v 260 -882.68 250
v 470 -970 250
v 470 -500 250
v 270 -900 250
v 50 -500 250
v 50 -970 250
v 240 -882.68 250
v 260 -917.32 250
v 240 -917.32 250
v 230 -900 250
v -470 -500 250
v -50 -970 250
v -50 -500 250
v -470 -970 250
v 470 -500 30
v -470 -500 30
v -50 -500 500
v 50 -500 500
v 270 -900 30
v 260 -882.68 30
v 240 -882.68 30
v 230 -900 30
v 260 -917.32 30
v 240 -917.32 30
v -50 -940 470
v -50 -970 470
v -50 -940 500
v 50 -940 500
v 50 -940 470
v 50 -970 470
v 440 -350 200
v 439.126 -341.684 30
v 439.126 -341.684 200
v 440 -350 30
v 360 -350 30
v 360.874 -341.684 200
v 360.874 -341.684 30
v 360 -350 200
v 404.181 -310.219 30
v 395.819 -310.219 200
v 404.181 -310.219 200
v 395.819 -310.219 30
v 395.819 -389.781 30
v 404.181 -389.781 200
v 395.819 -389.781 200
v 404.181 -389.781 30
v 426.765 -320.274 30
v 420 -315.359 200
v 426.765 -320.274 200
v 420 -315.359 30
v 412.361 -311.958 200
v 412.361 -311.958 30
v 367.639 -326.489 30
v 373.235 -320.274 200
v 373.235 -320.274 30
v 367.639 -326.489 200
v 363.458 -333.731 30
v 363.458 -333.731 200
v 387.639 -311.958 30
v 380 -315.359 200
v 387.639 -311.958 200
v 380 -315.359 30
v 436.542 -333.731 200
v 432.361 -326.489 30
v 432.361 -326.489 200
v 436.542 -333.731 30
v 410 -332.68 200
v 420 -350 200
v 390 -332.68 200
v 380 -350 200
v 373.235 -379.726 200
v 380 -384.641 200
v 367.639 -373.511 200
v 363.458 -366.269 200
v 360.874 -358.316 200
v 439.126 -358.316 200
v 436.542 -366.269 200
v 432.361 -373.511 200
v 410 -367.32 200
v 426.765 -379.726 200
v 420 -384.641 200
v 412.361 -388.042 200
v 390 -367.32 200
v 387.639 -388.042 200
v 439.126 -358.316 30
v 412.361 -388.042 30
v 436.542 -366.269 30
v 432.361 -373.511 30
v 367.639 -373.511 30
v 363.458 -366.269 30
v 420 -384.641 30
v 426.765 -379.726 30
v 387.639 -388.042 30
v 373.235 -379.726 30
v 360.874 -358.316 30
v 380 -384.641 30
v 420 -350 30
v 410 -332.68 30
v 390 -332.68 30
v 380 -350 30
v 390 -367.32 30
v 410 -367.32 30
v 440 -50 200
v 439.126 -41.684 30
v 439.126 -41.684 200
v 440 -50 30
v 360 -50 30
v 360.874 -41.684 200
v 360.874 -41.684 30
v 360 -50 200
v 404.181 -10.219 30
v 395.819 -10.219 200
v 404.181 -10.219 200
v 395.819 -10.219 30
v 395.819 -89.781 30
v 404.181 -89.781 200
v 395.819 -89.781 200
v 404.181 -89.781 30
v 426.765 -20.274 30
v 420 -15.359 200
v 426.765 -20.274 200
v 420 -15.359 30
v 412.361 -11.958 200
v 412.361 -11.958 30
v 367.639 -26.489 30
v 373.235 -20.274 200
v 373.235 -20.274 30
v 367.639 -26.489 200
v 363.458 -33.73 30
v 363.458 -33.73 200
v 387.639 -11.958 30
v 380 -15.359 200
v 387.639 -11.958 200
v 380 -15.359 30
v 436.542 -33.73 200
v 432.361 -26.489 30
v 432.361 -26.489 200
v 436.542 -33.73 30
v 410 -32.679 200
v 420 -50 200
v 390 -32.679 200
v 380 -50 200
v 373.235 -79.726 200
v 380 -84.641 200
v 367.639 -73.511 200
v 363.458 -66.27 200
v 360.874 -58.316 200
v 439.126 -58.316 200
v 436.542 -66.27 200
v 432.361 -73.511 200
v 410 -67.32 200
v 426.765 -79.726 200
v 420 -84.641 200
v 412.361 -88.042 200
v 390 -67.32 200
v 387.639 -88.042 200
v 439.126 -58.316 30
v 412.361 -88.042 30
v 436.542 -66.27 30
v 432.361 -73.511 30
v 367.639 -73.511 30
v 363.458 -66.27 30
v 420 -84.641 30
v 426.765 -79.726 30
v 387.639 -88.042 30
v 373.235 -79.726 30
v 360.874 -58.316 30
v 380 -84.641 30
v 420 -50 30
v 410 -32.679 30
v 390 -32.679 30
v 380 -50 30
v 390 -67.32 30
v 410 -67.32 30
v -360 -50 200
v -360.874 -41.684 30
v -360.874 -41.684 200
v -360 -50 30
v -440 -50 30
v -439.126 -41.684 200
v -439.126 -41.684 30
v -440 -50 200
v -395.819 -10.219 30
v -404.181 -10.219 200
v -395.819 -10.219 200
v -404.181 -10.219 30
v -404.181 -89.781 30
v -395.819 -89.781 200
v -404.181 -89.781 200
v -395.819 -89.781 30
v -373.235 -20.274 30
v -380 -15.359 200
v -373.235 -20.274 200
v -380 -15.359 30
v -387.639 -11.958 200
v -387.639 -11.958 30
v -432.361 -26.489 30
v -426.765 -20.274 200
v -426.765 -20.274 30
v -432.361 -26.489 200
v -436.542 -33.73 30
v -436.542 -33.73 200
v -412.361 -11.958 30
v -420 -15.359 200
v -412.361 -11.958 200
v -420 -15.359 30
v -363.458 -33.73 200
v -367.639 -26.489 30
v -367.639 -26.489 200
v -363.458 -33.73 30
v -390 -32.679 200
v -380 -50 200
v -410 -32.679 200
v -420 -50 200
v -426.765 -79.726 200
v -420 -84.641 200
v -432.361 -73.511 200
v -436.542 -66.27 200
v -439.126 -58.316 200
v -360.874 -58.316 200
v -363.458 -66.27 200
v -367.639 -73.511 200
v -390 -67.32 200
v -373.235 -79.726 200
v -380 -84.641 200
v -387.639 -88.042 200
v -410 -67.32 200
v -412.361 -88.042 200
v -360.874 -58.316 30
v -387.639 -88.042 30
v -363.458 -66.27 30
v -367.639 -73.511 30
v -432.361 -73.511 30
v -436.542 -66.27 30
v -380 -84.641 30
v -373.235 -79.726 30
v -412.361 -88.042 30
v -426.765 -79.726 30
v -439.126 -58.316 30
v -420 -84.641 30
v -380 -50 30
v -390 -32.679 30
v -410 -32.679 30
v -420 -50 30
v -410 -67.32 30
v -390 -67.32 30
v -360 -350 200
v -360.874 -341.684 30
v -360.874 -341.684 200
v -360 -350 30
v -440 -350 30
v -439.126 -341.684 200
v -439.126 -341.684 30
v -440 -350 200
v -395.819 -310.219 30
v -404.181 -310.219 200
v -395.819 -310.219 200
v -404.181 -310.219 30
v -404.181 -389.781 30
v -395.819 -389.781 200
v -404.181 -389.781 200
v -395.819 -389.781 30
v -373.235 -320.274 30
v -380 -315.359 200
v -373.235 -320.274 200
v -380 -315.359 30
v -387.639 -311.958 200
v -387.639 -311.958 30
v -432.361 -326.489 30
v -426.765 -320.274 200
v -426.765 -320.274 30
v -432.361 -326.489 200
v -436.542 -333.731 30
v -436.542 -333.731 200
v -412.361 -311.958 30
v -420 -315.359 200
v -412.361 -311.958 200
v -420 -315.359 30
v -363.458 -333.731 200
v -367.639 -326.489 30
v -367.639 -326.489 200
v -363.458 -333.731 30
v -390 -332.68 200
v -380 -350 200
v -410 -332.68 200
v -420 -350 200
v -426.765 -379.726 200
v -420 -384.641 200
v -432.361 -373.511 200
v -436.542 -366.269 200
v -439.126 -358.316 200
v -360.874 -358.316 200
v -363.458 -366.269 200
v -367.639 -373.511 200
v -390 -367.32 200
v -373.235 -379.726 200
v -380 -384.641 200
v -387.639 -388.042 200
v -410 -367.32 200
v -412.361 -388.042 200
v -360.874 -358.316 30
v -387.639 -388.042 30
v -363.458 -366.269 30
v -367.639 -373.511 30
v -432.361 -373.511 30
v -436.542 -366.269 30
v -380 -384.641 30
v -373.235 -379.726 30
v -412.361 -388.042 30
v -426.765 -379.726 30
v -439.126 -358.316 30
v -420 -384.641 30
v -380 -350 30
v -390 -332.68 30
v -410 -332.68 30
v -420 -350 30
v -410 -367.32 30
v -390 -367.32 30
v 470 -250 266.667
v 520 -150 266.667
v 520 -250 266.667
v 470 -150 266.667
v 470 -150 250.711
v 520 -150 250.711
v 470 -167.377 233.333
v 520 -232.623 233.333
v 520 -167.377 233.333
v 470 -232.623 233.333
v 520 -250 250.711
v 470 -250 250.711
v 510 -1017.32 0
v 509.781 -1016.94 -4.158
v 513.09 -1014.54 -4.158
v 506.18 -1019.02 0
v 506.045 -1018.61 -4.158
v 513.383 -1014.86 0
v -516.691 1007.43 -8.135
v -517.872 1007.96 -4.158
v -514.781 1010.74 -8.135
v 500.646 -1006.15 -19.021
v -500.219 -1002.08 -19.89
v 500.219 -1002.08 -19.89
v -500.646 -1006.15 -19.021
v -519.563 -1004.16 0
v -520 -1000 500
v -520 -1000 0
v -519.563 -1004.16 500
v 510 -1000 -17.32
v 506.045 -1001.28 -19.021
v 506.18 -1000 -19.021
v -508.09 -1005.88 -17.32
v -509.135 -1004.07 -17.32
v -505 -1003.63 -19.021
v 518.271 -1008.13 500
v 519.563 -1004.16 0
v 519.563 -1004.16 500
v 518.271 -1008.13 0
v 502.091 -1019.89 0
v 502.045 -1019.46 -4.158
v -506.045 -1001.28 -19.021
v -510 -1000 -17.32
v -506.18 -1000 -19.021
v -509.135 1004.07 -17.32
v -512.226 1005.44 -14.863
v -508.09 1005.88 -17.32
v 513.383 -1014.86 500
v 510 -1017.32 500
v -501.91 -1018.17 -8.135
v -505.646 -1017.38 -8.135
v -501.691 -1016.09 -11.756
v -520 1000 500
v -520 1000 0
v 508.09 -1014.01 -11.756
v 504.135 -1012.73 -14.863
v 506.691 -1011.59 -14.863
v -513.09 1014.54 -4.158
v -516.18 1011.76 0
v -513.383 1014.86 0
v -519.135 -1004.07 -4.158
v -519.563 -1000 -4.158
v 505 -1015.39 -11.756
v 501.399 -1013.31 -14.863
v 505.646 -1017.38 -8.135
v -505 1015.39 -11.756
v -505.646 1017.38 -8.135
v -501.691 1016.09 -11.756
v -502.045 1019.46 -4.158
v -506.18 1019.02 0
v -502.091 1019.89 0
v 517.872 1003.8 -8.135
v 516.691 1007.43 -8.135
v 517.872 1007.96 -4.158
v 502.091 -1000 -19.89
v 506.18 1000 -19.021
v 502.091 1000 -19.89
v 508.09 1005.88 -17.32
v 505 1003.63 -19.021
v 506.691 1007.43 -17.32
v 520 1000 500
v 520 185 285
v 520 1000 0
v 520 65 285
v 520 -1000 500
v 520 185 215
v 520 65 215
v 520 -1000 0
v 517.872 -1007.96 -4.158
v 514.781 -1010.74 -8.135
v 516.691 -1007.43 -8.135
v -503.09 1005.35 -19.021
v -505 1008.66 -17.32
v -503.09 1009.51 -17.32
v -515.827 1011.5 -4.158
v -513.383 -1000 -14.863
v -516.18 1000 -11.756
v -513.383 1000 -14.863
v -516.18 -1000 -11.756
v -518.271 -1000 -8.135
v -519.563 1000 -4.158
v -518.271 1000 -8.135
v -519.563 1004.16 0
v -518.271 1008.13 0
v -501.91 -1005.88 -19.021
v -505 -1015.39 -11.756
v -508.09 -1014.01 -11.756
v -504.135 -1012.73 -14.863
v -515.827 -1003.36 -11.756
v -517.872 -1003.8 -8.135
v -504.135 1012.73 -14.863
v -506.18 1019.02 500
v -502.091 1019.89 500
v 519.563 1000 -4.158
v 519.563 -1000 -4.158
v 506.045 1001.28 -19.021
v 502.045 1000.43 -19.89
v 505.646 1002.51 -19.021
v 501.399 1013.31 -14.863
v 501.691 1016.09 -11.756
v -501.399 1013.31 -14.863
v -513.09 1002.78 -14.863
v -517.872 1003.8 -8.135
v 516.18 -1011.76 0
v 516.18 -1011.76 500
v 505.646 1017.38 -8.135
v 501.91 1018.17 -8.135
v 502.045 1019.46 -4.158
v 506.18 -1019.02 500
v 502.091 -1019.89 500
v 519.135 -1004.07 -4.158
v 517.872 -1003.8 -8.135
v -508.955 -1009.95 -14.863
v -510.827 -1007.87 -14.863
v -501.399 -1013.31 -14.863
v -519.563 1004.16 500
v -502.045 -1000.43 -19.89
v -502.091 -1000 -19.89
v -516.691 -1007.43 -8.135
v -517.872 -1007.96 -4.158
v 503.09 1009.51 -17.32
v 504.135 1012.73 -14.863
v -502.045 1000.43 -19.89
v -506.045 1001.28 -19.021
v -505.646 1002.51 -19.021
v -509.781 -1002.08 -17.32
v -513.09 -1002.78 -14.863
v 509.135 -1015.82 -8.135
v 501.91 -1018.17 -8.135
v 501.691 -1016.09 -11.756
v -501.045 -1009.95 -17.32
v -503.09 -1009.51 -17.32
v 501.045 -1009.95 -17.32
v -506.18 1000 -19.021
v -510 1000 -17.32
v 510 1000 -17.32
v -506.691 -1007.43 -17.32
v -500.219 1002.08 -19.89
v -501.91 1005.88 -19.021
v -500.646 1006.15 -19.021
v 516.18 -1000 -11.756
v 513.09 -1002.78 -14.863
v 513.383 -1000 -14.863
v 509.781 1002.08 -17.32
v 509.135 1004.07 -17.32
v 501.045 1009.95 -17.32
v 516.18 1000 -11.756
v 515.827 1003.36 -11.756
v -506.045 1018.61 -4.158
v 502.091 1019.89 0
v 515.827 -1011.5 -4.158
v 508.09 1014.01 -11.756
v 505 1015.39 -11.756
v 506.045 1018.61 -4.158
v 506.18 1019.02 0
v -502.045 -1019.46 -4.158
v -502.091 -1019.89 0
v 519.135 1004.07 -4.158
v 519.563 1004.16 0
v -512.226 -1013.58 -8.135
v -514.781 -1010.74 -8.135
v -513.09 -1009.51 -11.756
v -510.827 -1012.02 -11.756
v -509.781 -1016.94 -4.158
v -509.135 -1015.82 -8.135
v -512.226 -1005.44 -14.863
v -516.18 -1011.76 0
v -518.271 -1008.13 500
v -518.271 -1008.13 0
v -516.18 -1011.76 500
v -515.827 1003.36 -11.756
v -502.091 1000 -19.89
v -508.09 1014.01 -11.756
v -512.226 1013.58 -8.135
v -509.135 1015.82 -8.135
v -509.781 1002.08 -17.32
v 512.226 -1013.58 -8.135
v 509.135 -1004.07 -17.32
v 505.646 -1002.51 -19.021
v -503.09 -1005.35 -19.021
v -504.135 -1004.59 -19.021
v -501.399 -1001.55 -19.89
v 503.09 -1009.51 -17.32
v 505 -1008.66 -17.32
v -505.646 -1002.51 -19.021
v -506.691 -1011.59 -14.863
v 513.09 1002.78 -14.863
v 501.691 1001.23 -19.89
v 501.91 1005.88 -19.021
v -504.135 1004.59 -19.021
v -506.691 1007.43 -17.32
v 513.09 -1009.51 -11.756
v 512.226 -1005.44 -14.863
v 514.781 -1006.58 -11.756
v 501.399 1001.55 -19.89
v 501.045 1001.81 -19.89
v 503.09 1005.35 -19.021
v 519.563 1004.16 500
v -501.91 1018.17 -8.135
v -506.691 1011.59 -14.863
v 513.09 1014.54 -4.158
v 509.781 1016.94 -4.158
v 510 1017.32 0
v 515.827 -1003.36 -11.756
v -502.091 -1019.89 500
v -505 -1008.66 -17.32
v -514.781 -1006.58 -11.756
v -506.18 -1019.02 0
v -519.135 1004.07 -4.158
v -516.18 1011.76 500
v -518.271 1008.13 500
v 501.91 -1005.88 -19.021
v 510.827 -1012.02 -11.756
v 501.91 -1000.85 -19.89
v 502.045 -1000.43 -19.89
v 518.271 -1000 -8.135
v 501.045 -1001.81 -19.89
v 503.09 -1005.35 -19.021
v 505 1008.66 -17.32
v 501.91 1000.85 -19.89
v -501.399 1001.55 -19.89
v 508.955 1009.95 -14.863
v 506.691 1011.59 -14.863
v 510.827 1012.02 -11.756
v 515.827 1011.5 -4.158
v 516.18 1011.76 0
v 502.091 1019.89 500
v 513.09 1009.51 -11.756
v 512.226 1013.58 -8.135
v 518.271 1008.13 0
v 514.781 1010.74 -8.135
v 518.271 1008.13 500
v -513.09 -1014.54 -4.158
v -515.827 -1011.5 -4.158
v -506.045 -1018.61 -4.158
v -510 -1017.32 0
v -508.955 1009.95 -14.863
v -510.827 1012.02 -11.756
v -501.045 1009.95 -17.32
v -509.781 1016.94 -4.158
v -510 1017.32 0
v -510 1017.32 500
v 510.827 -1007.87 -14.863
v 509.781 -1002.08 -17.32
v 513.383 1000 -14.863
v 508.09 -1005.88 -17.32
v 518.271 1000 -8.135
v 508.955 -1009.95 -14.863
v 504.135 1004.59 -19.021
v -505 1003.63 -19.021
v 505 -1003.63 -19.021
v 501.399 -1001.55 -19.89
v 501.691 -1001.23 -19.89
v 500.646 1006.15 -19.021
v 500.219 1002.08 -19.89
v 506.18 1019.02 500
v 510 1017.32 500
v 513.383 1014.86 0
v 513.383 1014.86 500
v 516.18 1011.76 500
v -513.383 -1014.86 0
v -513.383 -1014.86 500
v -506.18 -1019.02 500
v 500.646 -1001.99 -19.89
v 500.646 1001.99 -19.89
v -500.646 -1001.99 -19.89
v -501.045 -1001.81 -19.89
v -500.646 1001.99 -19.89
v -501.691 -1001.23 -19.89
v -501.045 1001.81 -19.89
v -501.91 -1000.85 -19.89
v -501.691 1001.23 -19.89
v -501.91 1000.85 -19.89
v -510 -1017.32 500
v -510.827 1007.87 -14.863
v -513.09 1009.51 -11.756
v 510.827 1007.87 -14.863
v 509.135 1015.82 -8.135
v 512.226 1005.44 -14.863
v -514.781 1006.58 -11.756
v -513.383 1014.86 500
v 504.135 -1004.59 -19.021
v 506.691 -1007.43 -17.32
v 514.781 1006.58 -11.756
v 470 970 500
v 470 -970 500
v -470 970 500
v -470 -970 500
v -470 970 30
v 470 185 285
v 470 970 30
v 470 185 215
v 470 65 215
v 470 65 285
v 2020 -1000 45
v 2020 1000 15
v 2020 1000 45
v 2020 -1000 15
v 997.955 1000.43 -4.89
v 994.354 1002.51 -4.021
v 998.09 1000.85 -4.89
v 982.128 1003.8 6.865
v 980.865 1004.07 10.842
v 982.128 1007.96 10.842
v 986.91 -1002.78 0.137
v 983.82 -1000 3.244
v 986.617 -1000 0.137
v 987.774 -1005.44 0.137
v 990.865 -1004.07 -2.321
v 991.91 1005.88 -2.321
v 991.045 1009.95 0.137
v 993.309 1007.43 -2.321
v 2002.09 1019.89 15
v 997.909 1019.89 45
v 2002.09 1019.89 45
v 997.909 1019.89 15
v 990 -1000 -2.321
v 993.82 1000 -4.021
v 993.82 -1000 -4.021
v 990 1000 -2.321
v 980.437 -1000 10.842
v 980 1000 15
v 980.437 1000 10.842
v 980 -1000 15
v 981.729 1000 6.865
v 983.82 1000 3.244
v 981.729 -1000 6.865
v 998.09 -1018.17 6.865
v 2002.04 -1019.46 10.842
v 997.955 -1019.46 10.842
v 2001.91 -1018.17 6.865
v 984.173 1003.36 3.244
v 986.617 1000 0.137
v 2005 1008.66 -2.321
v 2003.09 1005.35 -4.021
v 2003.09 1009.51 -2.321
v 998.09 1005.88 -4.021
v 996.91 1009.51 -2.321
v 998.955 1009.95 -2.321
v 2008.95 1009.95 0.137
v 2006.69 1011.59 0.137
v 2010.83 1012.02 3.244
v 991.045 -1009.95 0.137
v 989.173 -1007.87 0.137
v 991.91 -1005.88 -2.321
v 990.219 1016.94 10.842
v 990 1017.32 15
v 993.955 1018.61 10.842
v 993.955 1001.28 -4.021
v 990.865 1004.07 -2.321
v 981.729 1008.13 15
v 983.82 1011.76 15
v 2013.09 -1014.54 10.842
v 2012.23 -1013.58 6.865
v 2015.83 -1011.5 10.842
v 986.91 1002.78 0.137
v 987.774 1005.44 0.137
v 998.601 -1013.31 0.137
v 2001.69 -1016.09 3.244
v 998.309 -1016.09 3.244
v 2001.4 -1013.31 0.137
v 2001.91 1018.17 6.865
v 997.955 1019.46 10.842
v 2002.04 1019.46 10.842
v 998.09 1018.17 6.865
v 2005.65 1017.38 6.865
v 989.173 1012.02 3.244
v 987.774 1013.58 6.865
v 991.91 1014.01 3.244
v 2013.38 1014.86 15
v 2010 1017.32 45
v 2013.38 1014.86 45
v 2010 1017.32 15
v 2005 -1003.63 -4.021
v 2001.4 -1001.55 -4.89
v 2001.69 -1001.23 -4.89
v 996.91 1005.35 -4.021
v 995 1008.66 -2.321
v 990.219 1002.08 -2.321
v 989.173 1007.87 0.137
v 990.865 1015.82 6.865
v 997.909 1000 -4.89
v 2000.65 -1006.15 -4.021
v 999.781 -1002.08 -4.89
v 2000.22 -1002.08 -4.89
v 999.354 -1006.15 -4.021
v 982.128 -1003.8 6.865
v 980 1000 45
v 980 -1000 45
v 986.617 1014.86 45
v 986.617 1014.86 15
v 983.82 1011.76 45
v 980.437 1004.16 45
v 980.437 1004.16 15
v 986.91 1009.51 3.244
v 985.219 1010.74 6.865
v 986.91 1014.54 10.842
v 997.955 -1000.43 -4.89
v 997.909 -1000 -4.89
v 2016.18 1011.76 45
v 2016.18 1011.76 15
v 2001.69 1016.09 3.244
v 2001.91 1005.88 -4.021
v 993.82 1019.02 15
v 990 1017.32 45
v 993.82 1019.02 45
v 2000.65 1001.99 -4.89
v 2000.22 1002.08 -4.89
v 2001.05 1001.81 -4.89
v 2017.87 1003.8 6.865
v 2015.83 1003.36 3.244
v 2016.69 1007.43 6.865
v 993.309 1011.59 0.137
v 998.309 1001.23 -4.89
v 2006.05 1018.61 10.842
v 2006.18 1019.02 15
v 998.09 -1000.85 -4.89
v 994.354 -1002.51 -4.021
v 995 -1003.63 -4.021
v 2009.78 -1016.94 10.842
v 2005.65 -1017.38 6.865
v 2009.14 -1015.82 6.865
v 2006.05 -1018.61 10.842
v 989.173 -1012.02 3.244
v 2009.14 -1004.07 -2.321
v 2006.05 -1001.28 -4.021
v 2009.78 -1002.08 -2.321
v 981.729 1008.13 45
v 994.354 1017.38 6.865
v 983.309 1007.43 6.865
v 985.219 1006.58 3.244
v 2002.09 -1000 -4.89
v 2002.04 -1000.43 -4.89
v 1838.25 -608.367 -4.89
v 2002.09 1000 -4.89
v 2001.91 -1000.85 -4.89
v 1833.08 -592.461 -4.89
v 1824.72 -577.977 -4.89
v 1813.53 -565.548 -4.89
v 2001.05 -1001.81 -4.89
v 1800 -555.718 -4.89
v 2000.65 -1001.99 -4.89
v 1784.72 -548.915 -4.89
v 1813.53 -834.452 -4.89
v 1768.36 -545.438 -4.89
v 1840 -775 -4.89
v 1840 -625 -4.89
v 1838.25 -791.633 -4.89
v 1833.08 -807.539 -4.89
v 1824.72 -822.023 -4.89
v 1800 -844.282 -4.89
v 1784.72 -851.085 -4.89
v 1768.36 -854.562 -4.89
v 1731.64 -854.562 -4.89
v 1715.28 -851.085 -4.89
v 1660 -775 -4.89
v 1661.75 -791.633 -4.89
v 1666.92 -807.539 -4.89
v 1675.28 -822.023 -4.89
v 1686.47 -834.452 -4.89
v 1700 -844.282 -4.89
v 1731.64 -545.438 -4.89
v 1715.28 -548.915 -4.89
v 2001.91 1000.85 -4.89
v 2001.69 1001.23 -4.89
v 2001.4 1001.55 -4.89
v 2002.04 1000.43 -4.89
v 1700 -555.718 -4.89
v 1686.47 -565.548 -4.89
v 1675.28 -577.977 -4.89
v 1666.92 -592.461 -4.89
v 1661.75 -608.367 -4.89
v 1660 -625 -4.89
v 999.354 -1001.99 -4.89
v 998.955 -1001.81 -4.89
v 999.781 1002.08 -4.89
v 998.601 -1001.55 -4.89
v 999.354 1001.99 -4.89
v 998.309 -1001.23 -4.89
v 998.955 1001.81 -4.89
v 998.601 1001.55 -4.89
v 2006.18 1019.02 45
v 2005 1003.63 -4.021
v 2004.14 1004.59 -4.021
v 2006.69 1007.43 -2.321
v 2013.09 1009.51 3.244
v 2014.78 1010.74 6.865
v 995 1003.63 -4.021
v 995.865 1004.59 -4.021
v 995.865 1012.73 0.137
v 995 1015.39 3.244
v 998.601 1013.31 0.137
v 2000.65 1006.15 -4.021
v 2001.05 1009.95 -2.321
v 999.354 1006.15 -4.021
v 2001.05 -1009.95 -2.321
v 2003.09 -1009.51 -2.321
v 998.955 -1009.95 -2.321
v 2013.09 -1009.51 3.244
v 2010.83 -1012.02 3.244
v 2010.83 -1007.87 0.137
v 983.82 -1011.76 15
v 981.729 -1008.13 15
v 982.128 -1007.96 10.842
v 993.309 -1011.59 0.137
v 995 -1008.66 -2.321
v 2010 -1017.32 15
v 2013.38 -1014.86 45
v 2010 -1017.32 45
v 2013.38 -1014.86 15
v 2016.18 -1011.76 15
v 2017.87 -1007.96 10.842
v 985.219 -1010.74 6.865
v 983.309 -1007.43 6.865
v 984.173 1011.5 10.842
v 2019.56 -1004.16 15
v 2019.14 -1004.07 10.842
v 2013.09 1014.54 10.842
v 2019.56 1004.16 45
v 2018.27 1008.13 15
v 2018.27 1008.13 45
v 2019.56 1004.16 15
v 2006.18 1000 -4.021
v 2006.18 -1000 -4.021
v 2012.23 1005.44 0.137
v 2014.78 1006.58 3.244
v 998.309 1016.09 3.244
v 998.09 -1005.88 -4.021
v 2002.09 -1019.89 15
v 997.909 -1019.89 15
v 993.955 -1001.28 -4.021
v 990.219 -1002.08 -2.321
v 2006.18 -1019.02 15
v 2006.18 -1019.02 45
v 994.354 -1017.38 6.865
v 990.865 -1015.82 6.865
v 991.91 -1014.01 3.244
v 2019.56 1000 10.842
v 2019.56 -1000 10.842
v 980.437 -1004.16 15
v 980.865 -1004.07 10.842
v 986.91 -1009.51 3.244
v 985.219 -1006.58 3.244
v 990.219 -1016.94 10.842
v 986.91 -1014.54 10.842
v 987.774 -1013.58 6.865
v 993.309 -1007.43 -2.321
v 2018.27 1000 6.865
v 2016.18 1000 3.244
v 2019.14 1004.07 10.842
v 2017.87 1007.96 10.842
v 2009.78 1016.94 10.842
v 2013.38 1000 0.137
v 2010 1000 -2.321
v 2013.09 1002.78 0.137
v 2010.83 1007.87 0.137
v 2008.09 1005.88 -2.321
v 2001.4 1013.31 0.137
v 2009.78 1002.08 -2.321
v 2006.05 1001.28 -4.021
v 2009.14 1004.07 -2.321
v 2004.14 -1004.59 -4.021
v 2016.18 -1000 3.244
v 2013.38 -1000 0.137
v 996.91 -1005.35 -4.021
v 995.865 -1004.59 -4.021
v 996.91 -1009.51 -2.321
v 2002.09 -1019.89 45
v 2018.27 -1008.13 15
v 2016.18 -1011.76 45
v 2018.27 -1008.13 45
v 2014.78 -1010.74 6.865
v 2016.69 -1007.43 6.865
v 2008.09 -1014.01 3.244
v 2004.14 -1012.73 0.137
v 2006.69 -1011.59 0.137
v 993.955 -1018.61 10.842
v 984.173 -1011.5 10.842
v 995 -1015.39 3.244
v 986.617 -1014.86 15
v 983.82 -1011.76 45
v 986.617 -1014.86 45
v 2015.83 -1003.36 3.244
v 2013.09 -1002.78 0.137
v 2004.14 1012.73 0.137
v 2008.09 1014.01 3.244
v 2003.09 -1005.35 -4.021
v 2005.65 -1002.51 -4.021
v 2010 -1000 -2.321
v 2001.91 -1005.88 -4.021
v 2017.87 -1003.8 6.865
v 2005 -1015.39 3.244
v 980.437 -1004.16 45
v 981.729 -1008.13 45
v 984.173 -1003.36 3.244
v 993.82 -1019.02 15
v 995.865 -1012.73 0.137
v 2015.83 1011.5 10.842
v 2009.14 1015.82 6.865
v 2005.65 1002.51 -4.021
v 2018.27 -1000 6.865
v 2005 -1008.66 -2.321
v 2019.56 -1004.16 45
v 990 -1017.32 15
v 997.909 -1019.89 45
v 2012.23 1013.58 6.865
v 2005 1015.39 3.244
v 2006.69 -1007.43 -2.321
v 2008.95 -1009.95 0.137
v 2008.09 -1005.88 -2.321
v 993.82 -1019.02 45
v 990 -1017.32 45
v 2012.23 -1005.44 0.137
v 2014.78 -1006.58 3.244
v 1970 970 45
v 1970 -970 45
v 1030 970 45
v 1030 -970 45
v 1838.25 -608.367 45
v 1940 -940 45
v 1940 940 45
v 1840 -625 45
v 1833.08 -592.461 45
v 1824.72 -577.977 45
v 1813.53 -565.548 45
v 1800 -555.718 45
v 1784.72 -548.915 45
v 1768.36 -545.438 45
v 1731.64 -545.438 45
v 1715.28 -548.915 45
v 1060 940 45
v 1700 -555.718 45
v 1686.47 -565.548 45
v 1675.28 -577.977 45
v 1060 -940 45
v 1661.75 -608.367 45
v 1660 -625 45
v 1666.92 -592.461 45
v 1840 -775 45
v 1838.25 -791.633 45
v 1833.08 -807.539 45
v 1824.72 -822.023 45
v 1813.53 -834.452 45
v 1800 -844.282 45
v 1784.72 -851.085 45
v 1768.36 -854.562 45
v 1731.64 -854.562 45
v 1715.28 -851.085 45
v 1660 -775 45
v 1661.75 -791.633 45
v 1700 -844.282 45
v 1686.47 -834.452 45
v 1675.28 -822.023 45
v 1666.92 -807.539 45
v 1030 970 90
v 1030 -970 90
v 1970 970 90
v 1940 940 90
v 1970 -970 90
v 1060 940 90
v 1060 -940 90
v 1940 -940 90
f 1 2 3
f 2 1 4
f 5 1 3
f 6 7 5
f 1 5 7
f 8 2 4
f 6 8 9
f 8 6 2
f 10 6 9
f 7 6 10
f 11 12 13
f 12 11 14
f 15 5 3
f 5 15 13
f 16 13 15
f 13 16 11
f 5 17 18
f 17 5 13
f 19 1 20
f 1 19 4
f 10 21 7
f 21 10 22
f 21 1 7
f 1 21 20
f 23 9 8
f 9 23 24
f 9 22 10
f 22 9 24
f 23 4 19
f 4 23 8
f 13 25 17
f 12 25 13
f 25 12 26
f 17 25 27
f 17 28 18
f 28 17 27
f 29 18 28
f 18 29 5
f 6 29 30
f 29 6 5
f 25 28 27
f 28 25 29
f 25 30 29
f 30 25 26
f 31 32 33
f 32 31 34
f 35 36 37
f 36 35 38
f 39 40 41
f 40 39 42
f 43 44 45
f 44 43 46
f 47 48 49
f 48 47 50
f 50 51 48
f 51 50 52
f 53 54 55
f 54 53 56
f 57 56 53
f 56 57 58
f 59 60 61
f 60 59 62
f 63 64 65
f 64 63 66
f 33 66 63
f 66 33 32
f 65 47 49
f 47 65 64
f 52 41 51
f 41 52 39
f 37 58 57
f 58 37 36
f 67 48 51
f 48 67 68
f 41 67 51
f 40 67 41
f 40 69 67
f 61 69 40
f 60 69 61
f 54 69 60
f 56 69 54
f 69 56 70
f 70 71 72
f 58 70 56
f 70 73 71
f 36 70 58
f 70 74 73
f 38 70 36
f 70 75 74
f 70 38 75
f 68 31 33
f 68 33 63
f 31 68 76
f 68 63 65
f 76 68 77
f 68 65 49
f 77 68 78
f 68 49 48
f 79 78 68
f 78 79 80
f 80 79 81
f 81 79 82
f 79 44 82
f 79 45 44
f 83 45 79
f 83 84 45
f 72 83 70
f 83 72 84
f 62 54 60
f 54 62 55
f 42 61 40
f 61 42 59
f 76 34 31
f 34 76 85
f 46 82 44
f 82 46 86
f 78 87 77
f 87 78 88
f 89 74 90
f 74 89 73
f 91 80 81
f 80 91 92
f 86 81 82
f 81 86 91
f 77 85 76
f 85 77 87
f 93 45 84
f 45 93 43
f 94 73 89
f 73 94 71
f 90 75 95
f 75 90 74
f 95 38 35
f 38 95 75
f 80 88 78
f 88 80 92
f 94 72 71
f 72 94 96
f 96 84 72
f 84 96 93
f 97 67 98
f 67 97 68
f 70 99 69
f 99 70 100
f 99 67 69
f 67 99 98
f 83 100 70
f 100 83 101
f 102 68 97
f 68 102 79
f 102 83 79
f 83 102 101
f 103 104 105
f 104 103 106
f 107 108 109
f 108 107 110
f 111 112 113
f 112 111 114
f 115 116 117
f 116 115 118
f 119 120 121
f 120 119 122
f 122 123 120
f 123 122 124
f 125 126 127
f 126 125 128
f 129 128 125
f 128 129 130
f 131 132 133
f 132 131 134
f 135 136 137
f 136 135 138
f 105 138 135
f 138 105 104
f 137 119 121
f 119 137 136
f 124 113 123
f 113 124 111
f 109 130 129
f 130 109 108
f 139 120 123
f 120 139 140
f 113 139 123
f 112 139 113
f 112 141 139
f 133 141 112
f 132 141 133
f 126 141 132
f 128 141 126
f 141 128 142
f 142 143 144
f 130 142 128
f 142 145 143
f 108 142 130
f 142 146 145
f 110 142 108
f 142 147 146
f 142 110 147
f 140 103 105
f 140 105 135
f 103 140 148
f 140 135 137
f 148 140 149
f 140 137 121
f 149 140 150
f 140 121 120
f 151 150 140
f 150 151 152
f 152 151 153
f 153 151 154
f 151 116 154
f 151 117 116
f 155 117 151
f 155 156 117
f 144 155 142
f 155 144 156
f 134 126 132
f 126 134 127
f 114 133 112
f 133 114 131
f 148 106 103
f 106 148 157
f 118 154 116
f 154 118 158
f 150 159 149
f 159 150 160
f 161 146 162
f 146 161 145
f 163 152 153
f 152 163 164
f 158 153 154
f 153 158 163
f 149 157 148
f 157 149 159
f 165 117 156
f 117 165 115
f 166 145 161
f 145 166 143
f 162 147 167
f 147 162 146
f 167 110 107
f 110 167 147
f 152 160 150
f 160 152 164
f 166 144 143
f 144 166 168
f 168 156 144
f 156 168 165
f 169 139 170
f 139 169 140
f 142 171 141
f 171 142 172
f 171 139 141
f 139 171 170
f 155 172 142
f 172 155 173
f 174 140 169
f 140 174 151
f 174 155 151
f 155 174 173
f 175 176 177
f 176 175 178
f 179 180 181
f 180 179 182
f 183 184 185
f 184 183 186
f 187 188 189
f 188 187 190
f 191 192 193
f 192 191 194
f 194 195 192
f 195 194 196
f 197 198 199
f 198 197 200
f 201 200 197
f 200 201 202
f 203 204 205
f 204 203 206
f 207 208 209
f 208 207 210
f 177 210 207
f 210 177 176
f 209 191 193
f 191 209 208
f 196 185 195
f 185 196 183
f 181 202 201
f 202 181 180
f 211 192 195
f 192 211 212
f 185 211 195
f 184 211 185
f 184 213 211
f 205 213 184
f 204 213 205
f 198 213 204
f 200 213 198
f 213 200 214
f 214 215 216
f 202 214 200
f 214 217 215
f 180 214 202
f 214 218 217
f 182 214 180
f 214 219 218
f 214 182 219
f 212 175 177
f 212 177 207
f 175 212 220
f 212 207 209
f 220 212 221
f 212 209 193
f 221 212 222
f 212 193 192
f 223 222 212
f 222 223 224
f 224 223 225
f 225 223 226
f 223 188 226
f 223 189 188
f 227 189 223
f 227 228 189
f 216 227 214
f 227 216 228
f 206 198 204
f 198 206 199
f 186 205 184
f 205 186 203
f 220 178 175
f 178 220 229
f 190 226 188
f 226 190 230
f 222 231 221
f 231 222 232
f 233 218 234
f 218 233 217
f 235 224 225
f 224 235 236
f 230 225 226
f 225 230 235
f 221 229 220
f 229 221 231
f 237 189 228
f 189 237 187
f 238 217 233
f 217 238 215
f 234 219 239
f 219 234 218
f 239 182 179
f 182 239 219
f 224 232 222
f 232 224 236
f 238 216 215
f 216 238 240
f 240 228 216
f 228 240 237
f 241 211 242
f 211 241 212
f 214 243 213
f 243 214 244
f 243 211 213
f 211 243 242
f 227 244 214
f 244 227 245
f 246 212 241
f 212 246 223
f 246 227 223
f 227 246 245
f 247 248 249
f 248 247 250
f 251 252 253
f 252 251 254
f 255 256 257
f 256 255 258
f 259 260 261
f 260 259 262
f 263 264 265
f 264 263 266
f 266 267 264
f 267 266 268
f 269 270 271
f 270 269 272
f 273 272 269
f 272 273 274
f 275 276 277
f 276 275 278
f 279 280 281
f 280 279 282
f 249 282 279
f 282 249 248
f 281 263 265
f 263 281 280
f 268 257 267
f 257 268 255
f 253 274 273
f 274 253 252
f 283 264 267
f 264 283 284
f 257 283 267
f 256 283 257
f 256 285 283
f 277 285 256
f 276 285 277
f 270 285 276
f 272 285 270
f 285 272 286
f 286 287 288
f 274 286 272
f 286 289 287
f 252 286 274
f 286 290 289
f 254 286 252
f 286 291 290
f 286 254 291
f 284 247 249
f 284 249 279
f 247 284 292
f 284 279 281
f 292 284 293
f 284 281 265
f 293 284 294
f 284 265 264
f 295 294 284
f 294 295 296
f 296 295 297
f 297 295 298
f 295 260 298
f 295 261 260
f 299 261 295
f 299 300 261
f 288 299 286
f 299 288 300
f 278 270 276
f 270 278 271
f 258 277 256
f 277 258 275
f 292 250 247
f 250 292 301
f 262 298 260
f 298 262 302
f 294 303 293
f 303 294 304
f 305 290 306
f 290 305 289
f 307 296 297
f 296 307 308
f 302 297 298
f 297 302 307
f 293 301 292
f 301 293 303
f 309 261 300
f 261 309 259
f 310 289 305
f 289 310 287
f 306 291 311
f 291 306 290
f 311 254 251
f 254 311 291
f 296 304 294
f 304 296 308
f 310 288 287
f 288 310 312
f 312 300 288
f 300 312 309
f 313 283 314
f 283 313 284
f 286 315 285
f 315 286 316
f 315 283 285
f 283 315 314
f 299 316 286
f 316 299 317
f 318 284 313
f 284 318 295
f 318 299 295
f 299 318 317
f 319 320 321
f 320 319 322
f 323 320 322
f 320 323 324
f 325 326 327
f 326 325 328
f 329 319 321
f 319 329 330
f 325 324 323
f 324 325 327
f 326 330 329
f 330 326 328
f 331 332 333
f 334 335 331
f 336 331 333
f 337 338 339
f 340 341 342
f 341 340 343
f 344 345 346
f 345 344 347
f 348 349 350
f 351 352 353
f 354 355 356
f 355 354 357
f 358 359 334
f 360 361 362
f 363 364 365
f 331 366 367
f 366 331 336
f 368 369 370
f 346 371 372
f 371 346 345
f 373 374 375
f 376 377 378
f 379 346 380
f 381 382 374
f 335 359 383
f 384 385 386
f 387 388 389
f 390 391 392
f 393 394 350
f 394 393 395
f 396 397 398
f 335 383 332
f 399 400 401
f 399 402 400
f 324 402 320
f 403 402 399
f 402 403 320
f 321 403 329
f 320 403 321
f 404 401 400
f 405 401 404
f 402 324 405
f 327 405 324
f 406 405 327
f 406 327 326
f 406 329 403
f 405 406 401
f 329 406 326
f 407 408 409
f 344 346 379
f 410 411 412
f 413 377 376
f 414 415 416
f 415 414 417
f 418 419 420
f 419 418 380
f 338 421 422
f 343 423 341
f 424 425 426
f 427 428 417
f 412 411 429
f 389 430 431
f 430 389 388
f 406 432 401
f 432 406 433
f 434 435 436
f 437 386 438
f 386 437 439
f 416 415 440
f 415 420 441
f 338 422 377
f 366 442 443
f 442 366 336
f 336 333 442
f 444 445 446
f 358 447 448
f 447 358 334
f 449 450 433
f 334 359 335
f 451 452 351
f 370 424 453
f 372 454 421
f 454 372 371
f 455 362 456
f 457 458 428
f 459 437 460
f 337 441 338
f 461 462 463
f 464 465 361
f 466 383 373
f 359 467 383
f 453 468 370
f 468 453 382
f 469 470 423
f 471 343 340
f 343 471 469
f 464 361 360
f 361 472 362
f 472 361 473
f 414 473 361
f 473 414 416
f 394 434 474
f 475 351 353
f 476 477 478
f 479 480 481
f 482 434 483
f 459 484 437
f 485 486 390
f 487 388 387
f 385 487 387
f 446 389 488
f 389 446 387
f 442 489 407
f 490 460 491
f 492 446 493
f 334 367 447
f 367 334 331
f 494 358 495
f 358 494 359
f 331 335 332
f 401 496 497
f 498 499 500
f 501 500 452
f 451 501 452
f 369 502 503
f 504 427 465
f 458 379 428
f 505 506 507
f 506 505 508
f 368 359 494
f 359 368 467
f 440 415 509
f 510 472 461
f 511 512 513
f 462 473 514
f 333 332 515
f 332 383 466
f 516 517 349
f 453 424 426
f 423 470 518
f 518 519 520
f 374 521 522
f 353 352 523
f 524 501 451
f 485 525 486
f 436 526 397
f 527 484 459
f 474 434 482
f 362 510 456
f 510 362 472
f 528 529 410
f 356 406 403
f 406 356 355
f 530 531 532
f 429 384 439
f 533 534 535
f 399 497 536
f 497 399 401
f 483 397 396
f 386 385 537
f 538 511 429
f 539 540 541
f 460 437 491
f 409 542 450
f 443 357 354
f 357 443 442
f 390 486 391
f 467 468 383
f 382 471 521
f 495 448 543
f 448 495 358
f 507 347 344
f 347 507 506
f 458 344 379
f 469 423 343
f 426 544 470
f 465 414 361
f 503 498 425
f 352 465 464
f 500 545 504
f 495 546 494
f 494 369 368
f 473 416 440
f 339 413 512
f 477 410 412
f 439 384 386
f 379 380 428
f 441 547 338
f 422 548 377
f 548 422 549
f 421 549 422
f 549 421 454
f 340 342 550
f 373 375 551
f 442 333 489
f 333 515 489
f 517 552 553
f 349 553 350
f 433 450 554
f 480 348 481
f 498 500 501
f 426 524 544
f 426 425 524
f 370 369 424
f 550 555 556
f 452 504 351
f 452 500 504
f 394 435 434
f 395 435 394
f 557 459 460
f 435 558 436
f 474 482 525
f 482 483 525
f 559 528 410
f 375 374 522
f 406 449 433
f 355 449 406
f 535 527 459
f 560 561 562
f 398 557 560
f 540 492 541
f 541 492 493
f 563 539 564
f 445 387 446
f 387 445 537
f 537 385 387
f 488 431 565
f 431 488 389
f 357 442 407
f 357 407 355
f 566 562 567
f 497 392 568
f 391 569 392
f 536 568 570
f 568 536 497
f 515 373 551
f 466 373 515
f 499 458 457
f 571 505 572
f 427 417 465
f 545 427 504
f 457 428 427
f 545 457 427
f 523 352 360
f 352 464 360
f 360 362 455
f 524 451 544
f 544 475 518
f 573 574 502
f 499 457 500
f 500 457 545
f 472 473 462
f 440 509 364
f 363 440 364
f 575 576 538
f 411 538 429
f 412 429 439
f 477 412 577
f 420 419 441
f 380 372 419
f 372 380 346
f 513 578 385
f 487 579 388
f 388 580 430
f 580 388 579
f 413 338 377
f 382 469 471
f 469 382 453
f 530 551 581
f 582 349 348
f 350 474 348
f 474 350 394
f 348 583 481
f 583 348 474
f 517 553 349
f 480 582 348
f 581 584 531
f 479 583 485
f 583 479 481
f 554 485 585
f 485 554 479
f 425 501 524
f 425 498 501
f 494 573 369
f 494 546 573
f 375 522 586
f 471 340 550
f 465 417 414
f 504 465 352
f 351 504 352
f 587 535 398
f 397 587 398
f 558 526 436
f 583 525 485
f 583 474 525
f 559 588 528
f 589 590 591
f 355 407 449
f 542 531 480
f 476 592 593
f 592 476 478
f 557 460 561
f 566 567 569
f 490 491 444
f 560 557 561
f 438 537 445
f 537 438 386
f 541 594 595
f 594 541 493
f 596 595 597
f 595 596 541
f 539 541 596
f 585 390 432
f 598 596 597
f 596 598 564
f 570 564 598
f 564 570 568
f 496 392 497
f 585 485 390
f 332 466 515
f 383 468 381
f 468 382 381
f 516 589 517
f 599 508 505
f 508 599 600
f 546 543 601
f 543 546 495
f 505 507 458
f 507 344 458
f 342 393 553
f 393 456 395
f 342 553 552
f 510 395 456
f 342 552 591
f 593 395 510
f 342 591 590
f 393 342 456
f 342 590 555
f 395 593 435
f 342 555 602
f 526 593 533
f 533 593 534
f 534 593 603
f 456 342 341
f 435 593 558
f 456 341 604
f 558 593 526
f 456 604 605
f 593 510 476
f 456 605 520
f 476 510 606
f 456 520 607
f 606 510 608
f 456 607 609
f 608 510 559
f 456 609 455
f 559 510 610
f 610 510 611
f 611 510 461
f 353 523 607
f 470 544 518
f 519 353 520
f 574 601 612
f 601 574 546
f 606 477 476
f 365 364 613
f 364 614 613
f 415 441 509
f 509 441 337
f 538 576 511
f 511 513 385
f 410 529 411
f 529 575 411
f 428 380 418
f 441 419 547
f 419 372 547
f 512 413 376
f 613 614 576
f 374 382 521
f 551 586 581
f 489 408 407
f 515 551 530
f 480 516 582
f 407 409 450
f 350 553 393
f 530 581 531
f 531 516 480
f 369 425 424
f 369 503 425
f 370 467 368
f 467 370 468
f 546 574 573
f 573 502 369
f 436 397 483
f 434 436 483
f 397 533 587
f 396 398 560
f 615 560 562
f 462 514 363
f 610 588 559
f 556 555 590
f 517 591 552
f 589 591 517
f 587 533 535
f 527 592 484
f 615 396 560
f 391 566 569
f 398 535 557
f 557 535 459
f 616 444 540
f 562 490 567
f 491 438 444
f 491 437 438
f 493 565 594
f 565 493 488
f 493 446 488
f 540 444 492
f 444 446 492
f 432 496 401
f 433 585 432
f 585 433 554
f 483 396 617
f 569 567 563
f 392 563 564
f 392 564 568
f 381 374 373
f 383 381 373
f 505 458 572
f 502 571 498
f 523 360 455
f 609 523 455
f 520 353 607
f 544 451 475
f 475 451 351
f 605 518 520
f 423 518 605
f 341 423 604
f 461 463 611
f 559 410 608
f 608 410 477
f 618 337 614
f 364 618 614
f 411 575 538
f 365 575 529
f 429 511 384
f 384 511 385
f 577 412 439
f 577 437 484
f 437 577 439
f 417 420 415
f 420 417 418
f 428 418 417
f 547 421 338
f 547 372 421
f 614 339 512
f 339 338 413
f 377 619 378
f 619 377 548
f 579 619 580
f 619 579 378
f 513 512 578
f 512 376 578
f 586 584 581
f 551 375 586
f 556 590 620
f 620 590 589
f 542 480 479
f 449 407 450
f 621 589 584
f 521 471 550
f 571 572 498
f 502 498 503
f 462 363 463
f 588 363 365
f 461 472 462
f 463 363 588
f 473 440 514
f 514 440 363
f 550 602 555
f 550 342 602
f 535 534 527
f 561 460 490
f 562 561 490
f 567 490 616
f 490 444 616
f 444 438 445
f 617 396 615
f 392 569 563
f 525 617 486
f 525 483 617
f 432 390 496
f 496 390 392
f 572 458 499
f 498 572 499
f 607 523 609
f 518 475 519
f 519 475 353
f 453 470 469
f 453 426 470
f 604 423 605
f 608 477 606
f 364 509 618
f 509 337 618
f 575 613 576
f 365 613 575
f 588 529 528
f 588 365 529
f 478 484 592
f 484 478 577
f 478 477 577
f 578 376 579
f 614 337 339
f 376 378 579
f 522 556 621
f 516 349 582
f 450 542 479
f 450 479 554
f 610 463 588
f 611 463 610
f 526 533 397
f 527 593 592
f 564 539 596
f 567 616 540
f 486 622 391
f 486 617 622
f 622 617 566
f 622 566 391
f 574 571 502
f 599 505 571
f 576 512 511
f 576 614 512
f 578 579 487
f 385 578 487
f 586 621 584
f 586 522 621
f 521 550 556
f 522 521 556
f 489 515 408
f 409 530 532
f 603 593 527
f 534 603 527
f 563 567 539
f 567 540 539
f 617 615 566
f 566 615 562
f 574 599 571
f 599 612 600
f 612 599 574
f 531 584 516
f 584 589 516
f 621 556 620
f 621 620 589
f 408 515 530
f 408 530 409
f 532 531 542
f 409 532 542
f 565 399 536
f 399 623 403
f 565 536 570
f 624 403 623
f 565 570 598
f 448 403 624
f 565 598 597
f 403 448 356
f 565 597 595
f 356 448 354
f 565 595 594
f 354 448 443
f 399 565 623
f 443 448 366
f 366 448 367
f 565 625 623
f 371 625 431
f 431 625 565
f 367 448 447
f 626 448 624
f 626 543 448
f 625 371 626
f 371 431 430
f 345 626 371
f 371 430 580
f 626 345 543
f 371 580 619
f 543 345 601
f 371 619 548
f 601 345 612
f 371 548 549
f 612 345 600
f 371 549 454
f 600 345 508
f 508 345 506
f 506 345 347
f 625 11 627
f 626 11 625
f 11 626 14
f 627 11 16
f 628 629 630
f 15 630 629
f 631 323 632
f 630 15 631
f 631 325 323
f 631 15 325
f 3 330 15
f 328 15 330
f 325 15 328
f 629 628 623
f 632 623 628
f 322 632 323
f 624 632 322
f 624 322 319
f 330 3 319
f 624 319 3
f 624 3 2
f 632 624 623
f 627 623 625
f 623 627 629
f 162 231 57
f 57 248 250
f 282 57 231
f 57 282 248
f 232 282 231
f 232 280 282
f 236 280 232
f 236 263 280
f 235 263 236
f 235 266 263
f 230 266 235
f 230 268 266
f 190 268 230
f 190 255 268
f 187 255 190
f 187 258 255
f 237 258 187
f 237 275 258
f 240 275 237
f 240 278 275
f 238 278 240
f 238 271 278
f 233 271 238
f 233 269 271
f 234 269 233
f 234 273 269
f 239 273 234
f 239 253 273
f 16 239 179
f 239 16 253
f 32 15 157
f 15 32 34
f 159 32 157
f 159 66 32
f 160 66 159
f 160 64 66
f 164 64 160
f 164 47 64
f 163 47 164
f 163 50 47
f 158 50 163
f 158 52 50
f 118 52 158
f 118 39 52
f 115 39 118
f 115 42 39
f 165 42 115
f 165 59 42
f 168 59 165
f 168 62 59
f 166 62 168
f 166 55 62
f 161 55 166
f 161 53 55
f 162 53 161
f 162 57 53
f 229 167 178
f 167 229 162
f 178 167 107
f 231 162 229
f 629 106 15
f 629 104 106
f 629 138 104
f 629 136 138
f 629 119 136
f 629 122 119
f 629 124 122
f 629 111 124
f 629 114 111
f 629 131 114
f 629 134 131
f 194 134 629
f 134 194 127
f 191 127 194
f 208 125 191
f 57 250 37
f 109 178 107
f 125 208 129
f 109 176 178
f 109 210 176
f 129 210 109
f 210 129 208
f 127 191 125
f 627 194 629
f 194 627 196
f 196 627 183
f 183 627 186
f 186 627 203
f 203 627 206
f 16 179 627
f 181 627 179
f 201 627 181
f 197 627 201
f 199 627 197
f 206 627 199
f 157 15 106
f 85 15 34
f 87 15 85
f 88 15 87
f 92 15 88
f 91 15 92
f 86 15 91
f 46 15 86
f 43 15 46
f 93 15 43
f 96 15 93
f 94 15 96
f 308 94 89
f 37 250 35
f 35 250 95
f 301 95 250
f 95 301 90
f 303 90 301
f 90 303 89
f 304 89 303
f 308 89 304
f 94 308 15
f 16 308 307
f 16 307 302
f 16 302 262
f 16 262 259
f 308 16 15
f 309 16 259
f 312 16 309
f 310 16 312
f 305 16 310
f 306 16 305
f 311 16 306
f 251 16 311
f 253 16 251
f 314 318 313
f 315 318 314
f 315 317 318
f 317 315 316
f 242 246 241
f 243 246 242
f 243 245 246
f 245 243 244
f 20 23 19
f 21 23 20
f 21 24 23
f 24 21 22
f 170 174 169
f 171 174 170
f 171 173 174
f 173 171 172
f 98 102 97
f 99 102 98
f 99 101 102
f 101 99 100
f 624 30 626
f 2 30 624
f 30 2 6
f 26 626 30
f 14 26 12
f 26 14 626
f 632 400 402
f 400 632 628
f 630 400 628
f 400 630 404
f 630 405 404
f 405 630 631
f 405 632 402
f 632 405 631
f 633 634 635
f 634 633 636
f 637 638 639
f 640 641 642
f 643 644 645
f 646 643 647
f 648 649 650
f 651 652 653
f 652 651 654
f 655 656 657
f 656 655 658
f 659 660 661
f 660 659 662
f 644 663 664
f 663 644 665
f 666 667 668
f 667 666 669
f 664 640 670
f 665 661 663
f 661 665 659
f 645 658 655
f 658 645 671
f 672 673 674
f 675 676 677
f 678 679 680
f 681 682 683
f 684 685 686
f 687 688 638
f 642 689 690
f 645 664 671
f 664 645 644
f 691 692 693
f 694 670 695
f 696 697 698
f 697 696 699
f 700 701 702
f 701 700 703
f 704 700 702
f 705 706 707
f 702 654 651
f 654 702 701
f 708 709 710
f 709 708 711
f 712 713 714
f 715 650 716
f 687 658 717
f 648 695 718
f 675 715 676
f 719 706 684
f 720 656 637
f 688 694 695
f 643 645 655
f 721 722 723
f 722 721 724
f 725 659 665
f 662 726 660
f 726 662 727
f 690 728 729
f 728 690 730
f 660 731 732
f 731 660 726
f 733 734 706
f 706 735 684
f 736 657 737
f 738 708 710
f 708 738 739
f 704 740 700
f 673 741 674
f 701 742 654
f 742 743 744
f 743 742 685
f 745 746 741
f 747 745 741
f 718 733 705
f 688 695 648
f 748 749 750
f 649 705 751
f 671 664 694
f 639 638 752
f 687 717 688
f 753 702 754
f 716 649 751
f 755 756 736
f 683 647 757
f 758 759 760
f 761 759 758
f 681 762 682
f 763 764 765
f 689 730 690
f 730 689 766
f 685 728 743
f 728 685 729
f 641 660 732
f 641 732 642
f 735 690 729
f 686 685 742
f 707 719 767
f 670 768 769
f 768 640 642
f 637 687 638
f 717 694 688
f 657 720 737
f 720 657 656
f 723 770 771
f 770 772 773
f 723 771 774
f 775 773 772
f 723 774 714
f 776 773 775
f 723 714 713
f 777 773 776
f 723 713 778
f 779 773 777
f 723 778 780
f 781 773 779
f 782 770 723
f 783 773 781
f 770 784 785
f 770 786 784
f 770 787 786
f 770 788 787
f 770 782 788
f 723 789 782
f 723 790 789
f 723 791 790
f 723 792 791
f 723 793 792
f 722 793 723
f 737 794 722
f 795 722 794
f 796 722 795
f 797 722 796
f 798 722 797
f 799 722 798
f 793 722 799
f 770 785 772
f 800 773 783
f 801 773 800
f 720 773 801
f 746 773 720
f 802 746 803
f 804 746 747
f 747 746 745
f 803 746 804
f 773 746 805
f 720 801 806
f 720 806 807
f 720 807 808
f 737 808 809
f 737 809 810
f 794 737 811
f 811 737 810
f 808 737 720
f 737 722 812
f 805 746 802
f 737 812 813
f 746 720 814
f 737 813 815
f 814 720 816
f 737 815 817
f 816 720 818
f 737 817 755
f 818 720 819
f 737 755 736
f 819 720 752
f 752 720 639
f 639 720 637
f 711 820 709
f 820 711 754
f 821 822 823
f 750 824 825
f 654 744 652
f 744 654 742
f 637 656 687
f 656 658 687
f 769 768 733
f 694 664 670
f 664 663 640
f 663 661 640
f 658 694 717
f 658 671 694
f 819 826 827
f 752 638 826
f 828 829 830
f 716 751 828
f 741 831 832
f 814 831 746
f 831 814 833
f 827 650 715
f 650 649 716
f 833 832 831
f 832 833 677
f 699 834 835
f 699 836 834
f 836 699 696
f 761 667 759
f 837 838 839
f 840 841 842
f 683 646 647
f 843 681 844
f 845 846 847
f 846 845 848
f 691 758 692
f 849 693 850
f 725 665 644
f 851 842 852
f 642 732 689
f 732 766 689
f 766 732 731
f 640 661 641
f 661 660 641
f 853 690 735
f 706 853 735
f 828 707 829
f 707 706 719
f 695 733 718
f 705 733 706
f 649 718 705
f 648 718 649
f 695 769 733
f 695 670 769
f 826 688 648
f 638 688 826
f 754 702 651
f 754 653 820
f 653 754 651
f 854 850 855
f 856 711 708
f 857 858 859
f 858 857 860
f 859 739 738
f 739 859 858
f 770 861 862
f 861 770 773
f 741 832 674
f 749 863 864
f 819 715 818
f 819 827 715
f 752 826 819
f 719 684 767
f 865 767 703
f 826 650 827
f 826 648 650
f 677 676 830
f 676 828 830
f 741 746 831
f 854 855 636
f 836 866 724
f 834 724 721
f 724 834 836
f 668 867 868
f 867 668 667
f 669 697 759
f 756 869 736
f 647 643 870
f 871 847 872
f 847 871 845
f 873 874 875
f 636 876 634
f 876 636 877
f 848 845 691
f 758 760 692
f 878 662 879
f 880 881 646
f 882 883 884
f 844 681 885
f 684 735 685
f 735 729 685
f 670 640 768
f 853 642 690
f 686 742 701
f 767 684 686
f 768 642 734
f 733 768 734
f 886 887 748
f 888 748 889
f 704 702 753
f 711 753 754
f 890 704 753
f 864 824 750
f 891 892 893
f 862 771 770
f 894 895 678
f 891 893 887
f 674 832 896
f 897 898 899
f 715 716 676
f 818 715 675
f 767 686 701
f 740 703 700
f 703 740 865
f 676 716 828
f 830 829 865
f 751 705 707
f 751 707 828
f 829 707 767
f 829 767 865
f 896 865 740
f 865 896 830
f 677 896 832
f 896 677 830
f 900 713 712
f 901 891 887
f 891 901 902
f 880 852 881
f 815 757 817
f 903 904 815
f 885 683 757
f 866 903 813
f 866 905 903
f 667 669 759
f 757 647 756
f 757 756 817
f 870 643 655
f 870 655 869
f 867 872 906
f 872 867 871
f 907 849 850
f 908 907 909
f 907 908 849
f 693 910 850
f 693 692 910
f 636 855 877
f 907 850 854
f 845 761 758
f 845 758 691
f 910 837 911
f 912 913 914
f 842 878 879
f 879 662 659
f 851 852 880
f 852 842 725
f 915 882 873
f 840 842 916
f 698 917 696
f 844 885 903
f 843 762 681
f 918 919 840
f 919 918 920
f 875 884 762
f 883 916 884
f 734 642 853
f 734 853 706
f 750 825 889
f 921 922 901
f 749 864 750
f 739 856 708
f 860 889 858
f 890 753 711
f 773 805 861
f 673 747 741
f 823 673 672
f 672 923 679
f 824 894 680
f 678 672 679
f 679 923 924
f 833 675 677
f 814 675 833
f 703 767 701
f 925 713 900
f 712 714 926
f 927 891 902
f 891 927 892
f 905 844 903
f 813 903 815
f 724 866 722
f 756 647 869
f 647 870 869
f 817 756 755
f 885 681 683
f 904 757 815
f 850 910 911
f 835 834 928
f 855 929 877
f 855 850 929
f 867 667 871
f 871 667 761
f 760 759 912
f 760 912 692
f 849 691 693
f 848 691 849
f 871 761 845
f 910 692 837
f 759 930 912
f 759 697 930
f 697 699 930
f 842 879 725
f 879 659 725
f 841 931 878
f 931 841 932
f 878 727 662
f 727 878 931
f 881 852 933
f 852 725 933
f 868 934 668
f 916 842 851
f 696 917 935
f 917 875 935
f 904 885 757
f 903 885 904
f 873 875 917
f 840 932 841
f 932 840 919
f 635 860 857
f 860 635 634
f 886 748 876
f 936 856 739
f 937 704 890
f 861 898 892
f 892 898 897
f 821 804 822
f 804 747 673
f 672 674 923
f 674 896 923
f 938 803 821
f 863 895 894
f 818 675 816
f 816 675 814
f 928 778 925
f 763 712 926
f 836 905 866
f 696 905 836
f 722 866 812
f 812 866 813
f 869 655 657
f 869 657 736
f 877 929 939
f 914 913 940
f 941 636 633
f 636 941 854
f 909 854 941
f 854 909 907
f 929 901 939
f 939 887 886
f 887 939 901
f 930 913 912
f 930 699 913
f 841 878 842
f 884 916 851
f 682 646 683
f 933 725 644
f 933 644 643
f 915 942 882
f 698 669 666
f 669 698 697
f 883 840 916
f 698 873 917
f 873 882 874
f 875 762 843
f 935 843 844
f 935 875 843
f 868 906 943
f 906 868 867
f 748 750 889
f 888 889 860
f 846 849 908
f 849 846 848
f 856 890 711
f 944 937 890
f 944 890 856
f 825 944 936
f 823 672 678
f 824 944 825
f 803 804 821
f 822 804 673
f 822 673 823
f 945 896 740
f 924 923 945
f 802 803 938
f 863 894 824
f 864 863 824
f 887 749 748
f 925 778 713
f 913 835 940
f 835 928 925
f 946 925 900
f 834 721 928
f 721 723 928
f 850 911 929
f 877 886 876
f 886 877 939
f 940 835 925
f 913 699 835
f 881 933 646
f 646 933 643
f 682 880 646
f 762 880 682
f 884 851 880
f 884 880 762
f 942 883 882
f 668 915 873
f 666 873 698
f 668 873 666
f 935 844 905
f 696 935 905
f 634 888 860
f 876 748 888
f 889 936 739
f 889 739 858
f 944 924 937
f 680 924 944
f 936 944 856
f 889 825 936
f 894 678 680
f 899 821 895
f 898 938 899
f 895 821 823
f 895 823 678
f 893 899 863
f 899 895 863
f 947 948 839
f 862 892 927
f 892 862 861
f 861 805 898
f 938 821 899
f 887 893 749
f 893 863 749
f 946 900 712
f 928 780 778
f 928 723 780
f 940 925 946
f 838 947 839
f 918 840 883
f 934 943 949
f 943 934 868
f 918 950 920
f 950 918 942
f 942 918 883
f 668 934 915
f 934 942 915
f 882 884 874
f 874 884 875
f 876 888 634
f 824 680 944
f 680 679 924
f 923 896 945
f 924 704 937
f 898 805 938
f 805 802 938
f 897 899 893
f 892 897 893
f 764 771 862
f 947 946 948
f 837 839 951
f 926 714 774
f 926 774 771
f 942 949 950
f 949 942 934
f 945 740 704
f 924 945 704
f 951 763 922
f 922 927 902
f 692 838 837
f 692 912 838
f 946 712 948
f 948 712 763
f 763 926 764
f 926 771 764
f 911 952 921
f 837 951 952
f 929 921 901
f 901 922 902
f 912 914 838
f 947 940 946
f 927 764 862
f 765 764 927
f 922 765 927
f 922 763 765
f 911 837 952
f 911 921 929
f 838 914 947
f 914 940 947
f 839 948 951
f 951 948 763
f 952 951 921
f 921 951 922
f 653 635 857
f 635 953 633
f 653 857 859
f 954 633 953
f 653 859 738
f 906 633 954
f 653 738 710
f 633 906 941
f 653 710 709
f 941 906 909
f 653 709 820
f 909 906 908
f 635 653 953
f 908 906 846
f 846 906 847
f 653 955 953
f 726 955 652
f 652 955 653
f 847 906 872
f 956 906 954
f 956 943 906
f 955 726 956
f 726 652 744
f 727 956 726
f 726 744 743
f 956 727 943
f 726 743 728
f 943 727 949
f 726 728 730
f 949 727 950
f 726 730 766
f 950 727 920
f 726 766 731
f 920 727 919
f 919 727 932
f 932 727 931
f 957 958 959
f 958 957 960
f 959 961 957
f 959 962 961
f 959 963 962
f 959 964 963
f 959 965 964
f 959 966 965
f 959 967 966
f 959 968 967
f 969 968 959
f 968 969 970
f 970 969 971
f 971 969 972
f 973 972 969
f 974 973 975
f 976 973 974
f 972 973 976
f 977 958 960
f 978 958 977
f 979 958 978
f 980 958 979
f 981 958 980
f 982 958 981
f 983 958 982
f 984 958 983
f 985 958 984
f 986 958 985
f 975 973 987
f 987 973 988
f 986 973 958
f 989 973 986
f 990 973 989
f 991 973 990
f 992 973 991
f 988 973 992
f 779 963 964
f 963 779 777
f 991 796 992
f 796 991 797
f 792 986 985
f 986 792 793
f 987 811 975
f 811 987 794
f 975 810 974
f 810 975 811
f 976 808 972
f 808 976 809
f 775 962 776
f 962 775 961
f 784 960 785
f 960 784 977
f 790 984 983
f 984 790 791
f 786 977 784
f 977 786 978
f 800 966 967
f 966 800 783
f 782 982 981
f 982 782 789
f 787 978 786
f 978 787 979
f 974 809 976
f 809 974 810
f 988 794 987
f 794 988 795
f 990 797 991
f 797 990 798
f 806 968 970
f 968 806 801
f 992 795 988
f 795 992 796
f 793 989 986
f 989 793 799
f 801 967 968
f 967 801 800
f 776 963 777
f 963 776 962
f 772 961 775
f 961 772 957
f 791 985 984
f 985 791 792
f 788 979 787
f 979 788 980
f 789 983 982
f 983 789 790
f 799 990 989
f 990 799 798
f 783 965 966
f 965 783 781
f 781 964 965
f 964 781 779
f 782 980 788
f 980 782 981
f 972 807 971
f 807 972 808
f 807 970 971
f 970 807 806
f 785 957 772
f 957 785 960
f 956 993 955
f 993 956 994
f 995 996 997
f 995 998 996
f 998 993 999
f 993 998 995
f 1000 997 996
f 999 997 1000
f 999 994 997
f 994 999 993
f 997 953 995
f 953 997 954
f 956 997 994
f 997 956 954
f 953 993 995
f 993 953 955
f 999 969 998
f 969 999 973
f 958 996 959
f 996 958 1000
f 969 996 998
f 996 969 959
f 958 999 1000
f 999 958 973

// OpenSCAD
scale = 1000;
d = 30;
HoleSize = 40;

    BOX();
    color("green")
        translate([scale*1.5, 0, 0])
        //rotate([180, 0, 0])
        //translate([0, 0, -scale*0.55+5]) //<-zamkniecie pudelka ;)
            LID();


module BOX()
{
union()
    {
      q = scale / 4;
      difference(){
      translate([0, -scale*0.75, q/2])
          cube([scale, scale/2, q], true); //Półka na czujniki
          
      translate([250,-900,0])
          Hole(scale); ////////<-NIESKALOWALNE
          
      }
      difference()
        {
            translate([-scale/20, -scale, scale/4])
                cube([scale/10, scale/2, scale/4]);//ścianka między czujnikami
            
            translate([-scale/10, -scale, scale/2 - d])
                cube([scale/5, 2*d, scale/2]);//miejsce na to coś wystające z pokrywki
        }
        
        translate([400,-350,0])
            standingHole(200); ////////<-NIESKALOWALNE
        translate([400,-50,0])
            standingHole(200); ////////<-NIESKALOWALNE
        translate([-400,-50,0])
            standingHole(200); ////////<-NIESKALOWALNE
        translate([-400,-350,0])
            standingHole(200); ////////<-NIESKALOWALNE
        
        
        
        
difference()
{
    ///
    minkowski(){
    translate([0, 0, scale/4])
        cube([scale, 2*scale, scale/2], true);//pudło
    sphere(20);
    }
    translate([0, 0, scale*0.75])
        cube([2*scale, 4*scale, scale/2], true);//wygladzenie z gory
    ///WYGLADZANIE MOZE PSUC!!!!
    
    
    
    translate([0, 0, scale/4 + d])
        cube([scale - 2*d, 2*scale - 2*d, scale/2], true);//pustka
    translate([scale/2, -scale/5, scale/4])
        //rotate([180, 0, 0])
        uUSB(100);//USB hole ////////<-NIESKALOWALNE
    
    translate([scale/2, scale/8, scale/4])
        cube([3*d, 120, 70], true);//POWER switch hole? ////////<-NIESKALOWALNE
        
}
}
}

module LID()
{
union()
{
    difference(){
    minkowski(){
    translate([0, 0, d])
        cube([scale, 2*scale, d], true);
        sphere(20);
    }
    translate([0, 0, 2*d])
        cube([2*scale, 4*scale, d], true);
    
    
    
    minkowski(){ ////////<-NIESKALOWALNE
    translate([250, -700, 0])
        cube([20, 150, 100], true);
        sphere(80);
    }
    
    
    
    }
    difference()
    {
        translate([0, 0, 2*d])
            cube([scale - 2*d, 2*scale - 2*d, 2*d], true);
        translate([0, 0, 2*d])
            cube([scale - 4*d, 2*scale - 4*d, 3*d], true);
    }
}
}

module uUSB(x)
{
    difference()
    {
            cube([x, x, x/3], true);
            translate([0, x, -x/5])
               rotate([45, 0, 0])
                cube([3*x, x, x], true);
            translate([0, -x, -x/5])
               rotate([45, 0, 0])
                cube([3*x, x, x], true);
    }
}

module standingHole(heigth)
{
    difference(){
        cylinder(r1 = HoleSize, r2 = HoleSize, h = heigth);
        cylinder(d=HoleSize, h=heigth + 1, $fn=6);
    }
}

module Hole(heigth)
{
    cylinder(d=HoleSize, h=heigth, $fn=6);//otwory!!!
}
